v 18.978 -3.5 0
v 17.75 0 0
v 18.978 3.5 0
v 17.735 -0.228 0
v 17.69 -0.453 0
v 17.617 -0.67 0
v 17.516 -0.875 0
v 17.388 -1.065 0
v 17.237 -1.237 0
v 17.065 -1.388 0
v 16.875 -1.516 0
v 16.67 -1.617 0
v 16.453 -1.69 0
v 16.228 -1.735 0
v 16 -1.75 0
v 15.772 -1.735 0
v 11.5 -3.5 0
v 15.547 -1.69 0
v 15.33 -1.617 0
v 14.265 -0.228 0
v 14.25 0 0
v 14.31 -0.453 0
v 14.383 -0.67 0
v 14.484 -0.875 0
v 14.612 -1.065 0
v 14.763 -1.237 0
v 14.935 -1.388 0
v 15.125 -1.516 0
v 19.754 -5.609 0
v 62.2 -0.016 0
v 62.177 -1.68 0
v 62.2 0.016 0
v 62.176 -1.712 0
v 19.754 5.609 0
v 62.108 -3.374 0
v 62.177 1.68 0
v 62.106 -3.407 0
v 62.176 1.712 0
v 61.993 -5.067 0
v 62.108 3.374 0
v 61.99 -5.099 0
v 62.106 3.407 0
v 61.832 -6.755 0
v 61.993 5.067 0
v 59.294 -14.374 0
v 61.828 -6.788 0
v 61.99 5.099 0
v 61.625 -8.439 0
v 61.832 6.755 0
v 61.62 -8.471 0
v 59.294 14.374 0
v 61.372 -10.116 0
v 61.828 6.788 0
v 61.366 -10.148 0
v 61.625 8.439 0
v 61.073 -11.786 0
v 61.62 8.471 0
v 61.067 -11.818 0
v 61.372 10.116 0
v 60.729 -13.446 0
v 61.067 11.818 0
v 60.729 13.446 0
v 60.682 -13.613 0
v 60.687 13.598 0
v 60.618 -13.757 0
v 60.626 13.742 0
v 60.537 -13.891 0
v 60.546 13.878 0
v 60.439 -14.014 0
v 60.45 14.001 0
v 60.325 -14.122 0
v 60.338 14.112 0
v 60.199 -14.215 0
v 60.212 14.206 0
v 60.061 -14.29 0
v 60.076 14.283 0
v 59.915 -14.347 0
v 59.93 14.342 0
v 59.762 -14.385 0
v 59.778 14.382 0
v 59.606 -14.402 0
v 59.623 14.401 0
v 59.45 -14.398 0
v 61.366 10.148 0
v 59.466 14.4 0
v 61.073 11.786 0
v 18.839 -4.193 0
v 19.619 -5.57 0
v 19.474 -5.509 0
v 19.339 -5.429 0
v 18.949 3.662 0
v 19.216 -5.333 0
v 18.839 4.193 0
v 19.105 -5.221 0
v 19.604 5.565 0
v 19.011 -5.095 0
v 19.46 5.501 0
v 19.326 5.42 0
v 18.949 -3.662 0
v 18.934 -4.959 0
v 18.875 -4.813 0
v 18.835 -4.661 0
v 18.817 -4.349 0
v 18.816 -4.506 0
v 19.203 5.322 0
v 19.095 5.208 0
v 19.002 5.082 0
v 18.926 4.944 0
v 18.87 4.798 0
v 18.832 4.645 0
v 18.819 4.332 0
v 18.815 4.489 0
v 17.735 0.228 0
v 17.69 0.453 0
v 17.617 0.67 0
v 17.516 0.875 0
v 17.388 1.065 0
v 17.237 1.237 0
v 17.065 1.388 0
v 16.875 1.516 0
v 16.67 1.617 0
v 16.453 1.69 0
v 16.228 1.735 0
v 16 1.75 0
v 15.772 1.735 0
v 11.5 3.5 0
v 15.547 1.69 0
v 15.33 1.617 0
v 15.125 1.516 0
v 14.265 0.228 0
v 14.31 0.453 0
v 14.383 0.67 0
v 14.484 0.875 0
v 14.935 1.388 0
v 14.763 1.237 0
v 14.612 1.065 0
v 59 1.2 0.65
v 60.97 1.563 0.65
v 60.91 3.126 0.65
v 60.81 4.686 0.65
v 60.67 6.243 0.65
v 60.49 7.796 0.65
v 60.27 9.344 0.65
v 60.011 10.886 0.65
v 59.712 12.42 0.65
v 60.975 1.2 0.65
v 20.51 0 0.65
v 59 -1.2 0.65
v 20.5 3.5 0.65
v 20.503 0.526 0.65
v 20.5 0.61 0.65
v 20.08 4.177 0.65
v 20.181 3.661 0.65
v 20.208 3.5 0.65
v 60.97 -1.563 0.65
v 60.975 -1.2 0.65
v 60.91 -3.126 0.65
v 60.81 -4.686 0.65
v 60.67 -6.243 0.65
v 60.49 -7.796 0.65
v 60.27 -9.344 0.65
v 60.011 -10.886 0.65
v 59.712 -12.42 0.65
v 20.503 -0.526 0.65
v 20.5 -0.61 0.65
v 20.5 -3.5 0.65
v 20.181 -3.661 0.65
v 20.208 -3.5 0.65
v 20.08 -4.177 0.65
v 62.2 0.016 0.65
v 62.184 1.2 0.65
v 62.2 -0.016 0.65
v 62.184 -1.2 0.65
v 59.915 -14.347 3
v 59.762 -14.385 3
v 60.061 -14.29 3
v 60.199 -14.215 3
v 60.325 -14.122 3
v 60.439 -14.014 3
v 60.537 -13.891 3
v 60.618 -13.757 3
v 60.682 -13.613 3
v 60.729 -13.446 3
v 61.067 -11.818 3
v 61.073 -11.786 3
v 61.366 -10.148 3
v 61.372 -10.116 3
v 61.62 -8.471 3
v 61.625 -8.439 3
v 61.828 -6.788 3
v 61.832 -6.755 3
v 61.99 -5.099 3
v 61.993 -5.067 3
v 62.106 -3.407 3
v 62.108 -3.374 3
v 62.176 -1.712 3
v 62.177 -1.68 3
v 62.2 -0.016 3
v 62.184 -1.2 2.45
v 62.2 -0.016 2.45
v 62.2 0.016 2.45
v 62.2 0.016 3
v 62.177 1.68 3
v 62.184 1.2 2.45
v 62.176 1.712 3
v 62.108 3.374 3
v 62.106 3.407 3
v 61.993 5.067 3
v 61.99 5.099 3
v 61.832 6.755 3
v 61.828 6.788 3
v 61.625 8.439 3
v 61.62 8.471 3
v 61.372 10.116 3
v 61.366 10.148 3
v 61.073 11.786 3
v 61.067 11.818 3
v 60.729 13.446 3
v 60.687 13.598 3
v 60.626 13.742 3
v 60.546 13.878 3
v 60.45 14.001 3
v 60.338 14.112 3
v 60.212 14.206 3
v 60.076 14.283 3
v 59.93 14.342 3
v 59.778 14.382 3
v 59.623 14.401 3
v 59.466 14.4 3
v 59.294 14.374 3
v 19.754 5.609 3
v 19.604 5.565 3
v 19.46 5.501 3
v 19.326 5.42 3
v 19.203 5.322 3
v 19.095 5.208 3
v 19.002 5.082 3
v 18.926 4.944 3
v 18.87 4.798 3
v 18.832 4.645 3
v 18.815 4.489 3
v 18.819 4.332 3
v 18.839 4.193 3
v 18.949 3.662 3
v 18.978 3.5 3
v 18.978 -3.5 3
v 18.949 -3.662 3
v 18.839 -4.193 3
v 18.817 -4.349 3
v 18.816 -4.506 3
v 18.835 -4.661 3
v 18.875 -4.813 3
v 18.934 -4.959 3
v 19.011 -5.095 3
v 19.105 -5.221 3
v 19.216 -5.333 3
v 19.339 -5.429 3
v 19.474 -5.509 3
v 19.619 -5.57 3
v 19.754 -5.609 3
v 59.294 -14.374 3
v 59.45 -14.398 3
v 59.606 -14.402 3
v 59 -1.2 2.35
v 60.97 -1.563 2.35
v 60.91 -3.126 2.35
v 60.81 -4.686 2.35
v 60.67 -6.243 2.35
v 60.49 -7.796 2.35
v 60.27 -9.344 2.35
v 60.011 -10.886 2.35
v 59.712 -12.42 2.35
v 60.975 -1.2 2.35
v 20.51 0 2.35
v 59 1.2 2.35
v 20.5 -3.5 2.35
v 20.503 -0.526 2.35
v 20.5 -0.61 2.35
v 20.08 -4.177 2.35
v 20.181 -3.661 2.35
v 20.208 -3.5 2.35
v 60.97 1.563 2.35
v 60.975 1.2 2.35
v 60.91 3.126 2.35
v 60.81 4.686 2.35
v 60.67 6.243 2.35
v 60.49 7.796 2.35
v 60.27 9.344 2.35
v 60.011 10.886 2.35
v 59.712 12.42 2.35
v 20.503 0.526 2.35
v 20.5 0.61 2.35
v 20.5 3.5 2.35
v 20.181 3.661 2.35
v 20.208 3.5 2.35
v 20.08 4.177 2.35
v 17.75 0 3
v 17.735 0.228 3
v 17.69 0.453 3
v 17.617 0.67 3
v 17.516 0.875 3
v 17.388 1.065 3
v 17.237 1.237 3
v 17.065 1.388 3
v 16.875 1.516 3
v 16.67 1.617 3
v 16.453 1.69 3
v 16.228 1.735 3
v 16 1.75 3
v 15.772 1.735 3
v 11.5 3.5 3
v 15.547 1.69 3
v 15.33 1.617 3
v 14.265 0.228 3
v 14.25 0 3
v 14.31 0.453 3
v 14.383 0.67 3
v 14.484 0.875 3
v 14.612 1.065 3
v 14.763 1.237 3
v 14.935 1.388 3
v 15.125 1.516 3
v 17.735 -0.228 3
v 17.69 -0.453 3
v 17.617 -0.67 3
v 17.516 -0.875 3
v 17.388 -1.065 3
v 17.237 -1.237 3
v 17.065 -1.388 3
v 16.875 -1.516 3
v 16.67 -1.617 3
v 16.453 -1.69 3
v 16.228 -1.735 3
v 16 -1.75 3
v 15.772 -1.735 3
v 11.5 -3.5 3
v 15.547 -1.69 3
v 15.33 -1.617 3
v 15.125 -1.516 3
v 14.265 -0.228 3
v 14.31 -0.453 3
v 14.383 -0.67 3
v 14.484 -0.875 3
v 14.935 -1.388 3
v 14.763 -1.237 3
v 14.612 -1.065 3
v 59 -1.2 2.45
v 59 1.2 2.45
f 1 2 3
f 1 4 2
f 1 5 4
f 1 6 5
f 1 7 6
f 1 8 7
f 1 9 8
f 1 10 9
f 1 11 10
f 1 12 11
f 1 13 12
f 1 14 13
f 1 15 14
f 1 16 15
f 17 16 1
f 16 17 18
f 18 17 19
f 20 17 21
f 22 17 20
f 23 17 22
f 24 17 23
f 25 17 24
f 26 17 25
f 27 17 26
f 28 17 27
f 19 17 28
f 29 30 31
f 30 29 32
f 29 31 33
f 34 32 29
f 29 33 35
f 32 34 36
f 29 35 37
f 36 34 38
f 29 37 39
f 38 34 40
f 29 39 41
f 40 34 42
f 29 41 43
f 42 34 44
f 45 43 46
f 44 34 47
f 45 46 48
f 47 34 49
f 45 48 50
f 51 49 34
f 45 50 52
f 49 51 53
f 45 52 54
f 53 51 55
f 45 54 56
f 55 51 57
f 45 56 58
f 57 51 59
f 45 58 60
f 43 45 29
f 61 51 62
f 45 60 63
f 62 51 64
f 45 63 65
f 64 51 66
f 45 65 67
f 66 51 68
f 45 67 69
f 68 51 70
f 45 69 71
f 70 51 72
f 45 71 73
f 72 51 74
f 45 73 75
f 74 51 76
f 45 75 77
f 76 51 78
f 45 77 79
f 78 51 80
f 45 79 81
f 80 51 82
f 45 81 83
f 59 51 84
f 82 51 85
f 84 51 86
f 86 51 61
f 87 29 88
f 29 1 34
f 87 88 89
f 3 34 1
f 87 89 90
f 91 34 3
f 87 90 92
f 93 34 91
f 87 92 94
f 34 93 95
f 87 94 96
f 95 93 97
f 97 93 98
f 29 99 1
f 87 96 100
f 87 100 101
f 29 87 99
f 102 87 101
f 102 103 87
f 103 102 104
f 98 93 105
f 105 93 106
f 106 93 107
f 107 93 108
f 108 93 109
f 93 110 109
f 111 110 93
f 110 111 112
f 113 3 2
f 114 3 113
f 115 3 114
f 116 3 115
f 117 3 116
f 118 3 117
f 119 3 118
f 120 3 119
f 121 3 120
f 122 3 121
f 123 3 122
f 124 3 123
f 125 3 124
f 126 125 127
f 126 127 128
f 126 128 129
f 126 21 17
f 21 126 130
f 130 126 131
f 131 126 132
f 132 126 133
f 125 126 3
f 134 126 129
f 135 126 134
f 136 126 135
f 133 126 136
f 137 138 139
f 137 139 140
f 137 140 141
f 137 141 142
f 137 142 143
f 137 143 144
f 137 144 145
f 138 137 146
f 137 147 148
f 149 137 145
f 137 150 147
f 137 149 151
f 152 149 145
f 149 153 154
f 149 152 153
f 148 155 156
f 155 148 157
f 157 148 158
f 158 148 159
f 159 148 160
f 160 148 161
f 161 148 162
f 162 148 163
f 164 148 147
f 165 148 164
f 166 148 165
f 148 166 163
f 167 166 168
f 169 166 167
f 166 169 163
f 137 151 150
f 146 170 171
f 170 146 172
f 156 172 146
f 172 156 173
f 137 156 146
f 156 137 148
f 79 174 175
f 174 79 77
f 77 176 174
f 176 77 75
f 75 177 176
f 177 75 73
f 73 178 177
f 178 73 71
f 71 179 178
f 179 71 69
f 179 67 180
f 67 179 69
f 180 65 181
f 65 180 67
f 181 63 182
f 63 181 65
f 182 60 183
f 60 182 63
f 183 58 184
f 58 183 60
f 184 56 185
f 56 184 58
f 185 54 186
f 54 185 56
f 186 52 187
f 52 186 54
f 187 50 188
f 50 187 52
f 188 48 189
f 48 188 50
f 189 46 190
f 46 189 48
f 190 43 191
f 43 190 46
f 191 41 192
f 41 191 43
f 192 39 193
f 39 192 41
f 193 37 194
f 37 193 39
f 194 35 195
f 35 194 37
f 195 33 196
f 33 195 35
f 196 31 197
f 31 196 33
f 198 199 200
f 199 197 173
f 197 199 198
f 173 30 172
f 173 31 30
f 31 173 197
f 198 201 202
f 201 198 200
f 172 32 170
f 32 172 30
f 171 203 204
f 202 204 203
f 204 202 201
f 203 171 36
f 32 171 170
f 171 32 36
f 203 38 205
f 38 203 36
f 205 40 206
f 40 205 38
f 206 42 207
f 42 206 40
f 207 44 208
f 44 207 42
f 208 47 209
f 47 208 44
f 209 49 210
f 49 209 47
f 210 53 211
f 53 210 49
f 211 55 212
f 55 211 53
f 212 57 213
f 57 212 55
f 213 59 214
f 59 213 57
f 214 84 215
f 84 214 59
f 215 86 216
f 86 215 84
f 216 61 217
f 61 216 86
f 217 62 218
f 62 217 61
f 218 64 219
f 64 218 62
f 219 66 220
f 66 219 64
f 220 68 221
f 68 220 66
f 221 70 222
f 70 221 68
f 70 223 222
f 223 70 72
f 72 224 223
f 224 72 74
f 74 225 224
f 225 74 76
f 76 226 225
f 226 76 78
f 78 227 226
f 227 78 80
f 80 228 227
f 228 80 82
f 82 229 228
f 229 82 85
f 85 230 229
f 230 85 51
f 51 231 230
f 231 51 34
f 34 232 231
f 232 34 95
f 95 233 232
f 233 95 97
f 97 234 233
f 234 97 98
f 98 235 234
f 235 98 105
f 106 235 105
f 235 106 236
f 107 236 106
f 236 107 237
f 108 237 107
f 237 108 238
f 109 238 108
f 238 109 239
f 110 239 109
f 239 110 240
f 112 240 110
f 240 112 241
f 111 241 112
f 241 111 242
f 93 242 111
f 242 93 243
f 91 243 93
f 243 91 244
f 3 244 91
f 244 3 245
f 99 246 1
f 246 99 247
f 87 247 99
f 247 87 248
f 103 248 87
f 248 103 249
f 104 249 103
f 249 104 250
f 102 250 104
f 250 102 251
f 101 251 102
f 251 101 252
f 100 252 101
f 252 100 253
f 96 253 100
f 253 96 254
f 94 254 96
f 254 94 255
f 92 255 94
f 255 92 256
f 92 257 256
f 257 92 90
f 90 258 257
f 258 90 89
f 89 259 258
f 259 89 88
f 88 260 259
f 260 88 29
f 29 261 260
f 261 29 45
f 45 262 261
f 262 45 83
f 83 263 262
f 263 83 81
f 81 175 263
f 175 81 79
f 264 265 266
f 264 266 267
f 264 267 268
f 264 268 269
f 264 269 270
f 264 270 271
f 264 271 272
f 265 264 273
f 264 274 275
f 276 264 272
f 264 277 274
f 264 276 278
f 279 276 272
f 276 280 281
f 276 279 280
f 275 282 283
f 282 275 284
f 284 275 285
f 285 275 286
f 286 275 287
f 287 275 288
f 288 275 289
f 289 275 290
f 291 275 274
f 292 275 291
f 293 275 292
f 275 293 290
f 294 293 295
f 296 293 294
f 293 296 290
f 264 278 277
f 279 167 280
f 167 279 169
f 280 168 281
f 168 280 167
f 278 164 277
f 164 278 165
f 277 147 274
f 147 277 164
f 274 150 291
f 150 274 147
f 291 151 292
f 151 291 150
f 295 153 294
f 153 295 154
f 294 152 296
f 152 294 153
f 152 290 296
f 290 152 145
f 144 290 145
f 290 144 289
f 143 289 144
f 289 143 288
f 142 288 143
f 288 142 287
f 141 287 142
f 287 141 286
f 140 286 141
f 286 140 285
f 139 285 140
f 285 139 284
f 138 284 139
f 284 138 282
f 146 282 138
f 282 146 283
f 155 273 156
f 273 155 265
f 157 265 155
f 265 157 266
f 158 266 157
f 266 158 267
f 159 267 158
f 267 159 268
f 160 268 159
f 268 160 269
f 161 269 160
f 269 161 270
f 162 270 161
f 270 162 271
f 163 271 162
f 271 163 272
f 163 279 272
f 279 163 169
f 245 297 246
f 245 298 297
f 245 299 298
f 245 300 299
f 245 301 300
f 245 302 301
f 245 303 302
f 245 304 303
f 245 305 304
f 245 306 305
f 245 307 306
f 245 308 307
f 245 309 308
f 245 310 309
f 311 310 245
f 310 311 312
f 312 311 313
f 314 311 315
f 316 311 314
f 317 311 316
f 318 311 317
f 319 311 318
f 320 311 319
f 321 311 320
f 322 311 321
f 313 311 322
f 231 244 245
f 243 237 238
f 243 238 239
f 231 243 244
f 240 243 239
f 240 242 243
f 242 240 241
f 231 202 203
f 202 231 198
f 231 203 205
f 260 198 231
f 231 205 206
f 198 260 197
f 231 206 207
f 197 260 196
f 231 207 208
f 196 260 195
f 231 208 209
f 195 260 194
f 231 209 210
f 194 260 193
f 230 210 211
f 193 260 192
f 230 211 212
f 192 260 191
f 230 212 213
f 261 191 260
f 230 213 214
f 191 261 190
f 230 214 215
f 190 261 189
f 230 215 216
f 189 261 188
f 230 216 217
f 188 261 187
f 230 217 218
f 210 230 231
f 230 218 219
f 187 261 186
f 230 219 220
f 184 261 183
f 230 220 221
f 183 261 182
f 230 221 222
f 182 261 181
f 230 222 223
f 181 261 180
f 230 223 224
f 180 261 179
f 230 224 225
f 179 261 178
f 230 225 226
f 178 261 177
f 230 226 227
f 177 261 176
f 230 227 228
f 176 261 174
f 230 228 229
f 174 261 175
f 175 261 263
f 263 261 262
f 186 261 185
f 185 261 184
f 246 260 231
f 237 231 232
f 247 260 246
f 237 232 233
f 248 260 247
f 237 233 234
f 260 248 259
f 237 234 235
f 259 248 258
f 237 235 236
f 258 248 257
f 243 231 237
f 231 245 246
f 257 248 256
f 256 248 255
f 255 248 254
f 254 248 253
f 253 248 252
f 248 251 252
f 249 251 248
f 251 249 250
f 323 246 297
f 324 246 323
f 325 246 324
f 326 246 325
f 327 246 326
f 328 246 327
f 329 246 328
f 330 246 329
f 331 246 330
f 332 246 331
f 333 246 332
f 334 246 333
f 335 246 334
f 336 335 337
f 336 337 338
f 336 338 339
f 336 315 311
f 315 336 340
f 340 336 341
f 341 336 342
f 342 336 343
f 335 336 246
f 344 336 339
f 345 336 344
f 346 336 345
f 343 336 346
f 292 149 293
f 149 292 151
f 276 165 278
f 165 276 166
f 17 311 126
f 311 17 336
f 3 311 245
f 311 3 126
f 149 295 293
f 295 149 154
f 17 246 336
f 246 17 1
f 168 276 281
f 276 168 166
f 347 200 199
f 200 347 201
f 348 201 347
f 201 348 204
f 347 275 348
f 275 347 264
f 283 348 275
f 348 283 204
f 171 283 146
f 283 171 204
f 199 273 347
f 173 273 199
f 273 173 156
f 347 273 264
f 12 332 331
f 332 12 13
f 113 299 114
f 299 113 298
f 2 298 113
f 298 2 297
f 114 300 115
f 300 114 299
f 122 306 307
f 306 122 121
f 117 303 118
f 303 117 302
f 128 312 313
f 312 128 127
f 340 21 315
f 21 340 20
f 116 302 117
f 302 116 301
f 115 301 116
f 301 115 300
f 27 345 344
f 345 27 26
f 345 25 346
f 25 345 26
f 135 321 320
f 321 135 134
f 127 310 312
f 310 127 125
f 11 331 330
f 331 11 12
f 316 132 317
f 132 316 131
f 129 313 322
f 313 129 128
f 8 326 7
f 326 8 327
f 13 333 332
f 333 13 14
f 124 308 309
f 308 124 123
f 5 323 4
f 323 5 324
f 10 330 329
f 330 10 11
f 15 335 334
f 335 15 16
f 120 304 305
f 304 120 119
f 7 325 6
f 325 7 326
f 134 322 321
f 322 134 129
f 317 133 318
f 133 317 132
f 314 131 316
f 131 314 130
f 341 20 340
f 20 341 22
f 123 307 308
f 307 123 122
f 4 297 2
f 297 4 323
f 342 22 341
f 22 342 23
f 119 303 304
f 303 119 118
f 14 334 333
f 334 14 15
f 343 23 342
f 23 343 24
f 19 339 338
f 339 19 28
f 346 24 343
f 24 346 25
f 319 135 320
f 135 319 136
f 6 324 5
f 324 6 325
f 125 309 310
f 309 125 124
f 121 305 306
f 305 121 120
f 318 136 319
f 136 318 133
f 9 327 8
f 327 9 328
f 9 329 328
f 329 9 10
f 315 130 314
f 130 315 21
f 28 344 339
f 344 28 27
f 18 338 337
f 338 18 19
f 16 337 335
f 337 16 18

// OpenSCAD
// file: parameters.scad
// =============================================================================
// Gen-AD Vernier flux-claw dual nano-gap — WOUND-AWARE (HARD GATE)
// Improve Gen-AA: tighter m2m ≤5.5, more copper (155 t), run_clear 0.60
// =============================================================================

wire_awg            = 26;
wire_od             = 0.45;
turns               = 155;      // +10 vs Gen-AA 145
fill                = 0.70;
layers_per_face     = 2;
wind_build_axial    = layers_per_face * wire_od * fill;   // 0.63
wind_build_radial   = 3 * wire_od * fill;                 // 0.945

coil_id_r           = 20.5;
coil_od_r           = 61.0;
span_deg            = 25.0;     // 12 stations; vernier vs 16-pole equiv
former_web          = 1.7;
flange_t            = 0.65;
wall                = 1.2;
slot_w              = 2.4;
mount_hole          = 3.5;
tab_len             = 7.0;

former_bare_h       = former_web + 2 * flange_t;            // 3.0
coil_envelope_h     = former_bare_h + 2 * wind_build_axial; // 4.26

run_clear           = 0.60;
gap_spacer_h        = run_clear + wind_build_axial;         // 1.23
m2m                 = coil_envelope_h + 2 * run_clear;      // 5.46 (beats Gen-AA 6.16)

coil_stations       = 12;
bay_r_in            = coil_id_r - 2.0 - wind_build_radial;
bay_r_out           = coil_od_r + 2.0 + wind_build_radial;
bay_span            = span_deg + 4.0;
bay_offset          = 2.0;
stator_thick        = former_bare_h;
stator_od           = 156.0;
shaft_clear_stator  = 36.0;
coil_mount_r        = 28.0;

// Dual rotors: 8+8 Ø20 vernier poles + 24+24 Ø5 flux claws / edge assists
large_pocket_d      = 20.3;
small_pocket_d      = 5.3;
pocket_h            = 5.2;
large_n             = 8;
R_large             = 50.0;
R_small_inner       = 36.0;     // claw inner
R_small_mid         = 50.0;
R_small_outer       = 64.0;
carrier_od          = 152.0;
carrier_thick       = 7.5;
hub_h               = 10.0;
hub_od              = 30.0;
rotor_b_offset_deg  = 22.5;     // vernier offset

shaft_bore          = 8.35;
bearing_d           = 21.85;
bearing_h           = 7.2;
m3_clear            = 3.5;
bolt_r_inner        = 36.0;
bolt_n_inner        = 6;
flange_bolt_r       = 72.0;
flange_bolt_n       = 6;
brace_r             = 68.0;
brace_d             = 4.3;
brace_n             = 4;

spacer_pad_od       = 14.0;
spacer_pad_id       = m3_clear;
endbell_od          = 156.0;
endbell_thick       = 8.0;
endbell_shaft_clear = 10.0;

$fn = 64;
// main file
// Gen-AD pancake former — print ×12
// WOUND: wind_build_axial computed in parameters.scad; wind BEFORE assembly
include <parameters.scad>;
$fn = 48;

module sector_2d(r_in, r_out, ang) {
    polygon([
        for (a = [-ang/2 : ang/16 : ang/2]) [r_in*cos(a), r_in*sin(a)],
        for (a = [ang/2 : -ang/16 : -ang/2]) [r_out*cos(a), r_out*sin(a)]
    ]);
}
module flange() {
    linear_extrude(flange_t) offset(r=wall) sector_2d(coil_id_r, coil_od_r, span_deg);
}
difference() {
    union() {
        flange();
        translate([0, 0, flange_t])
            linear_extrude(former_web)
                difference() {
                    offset(r=wall) sector_2d(coil_id_r, coil_od_r, span_deg);
                    sector_2d(coil_id_r + 0.01, coil_od_r - 0.01, span_deg - 1.5);
                }
        translate([0, 0, flange_t + former_web]) flange();
        translate([coil_id_r - tab_len - 2, -3.5, 0])
            cube([tab_len + 2, 7, former_bare_h]);
    }
    translate([coil_od_r - 2, -slot_w/2, flange_t])
        cube([wall + 4, slot_w, former_web + 0.1]);
    translate([coil_id_r - tab_len/2 - 1, 0, -0.1])
        cylinder(d=mount_hole, h=former_bare_h + 1);
}
